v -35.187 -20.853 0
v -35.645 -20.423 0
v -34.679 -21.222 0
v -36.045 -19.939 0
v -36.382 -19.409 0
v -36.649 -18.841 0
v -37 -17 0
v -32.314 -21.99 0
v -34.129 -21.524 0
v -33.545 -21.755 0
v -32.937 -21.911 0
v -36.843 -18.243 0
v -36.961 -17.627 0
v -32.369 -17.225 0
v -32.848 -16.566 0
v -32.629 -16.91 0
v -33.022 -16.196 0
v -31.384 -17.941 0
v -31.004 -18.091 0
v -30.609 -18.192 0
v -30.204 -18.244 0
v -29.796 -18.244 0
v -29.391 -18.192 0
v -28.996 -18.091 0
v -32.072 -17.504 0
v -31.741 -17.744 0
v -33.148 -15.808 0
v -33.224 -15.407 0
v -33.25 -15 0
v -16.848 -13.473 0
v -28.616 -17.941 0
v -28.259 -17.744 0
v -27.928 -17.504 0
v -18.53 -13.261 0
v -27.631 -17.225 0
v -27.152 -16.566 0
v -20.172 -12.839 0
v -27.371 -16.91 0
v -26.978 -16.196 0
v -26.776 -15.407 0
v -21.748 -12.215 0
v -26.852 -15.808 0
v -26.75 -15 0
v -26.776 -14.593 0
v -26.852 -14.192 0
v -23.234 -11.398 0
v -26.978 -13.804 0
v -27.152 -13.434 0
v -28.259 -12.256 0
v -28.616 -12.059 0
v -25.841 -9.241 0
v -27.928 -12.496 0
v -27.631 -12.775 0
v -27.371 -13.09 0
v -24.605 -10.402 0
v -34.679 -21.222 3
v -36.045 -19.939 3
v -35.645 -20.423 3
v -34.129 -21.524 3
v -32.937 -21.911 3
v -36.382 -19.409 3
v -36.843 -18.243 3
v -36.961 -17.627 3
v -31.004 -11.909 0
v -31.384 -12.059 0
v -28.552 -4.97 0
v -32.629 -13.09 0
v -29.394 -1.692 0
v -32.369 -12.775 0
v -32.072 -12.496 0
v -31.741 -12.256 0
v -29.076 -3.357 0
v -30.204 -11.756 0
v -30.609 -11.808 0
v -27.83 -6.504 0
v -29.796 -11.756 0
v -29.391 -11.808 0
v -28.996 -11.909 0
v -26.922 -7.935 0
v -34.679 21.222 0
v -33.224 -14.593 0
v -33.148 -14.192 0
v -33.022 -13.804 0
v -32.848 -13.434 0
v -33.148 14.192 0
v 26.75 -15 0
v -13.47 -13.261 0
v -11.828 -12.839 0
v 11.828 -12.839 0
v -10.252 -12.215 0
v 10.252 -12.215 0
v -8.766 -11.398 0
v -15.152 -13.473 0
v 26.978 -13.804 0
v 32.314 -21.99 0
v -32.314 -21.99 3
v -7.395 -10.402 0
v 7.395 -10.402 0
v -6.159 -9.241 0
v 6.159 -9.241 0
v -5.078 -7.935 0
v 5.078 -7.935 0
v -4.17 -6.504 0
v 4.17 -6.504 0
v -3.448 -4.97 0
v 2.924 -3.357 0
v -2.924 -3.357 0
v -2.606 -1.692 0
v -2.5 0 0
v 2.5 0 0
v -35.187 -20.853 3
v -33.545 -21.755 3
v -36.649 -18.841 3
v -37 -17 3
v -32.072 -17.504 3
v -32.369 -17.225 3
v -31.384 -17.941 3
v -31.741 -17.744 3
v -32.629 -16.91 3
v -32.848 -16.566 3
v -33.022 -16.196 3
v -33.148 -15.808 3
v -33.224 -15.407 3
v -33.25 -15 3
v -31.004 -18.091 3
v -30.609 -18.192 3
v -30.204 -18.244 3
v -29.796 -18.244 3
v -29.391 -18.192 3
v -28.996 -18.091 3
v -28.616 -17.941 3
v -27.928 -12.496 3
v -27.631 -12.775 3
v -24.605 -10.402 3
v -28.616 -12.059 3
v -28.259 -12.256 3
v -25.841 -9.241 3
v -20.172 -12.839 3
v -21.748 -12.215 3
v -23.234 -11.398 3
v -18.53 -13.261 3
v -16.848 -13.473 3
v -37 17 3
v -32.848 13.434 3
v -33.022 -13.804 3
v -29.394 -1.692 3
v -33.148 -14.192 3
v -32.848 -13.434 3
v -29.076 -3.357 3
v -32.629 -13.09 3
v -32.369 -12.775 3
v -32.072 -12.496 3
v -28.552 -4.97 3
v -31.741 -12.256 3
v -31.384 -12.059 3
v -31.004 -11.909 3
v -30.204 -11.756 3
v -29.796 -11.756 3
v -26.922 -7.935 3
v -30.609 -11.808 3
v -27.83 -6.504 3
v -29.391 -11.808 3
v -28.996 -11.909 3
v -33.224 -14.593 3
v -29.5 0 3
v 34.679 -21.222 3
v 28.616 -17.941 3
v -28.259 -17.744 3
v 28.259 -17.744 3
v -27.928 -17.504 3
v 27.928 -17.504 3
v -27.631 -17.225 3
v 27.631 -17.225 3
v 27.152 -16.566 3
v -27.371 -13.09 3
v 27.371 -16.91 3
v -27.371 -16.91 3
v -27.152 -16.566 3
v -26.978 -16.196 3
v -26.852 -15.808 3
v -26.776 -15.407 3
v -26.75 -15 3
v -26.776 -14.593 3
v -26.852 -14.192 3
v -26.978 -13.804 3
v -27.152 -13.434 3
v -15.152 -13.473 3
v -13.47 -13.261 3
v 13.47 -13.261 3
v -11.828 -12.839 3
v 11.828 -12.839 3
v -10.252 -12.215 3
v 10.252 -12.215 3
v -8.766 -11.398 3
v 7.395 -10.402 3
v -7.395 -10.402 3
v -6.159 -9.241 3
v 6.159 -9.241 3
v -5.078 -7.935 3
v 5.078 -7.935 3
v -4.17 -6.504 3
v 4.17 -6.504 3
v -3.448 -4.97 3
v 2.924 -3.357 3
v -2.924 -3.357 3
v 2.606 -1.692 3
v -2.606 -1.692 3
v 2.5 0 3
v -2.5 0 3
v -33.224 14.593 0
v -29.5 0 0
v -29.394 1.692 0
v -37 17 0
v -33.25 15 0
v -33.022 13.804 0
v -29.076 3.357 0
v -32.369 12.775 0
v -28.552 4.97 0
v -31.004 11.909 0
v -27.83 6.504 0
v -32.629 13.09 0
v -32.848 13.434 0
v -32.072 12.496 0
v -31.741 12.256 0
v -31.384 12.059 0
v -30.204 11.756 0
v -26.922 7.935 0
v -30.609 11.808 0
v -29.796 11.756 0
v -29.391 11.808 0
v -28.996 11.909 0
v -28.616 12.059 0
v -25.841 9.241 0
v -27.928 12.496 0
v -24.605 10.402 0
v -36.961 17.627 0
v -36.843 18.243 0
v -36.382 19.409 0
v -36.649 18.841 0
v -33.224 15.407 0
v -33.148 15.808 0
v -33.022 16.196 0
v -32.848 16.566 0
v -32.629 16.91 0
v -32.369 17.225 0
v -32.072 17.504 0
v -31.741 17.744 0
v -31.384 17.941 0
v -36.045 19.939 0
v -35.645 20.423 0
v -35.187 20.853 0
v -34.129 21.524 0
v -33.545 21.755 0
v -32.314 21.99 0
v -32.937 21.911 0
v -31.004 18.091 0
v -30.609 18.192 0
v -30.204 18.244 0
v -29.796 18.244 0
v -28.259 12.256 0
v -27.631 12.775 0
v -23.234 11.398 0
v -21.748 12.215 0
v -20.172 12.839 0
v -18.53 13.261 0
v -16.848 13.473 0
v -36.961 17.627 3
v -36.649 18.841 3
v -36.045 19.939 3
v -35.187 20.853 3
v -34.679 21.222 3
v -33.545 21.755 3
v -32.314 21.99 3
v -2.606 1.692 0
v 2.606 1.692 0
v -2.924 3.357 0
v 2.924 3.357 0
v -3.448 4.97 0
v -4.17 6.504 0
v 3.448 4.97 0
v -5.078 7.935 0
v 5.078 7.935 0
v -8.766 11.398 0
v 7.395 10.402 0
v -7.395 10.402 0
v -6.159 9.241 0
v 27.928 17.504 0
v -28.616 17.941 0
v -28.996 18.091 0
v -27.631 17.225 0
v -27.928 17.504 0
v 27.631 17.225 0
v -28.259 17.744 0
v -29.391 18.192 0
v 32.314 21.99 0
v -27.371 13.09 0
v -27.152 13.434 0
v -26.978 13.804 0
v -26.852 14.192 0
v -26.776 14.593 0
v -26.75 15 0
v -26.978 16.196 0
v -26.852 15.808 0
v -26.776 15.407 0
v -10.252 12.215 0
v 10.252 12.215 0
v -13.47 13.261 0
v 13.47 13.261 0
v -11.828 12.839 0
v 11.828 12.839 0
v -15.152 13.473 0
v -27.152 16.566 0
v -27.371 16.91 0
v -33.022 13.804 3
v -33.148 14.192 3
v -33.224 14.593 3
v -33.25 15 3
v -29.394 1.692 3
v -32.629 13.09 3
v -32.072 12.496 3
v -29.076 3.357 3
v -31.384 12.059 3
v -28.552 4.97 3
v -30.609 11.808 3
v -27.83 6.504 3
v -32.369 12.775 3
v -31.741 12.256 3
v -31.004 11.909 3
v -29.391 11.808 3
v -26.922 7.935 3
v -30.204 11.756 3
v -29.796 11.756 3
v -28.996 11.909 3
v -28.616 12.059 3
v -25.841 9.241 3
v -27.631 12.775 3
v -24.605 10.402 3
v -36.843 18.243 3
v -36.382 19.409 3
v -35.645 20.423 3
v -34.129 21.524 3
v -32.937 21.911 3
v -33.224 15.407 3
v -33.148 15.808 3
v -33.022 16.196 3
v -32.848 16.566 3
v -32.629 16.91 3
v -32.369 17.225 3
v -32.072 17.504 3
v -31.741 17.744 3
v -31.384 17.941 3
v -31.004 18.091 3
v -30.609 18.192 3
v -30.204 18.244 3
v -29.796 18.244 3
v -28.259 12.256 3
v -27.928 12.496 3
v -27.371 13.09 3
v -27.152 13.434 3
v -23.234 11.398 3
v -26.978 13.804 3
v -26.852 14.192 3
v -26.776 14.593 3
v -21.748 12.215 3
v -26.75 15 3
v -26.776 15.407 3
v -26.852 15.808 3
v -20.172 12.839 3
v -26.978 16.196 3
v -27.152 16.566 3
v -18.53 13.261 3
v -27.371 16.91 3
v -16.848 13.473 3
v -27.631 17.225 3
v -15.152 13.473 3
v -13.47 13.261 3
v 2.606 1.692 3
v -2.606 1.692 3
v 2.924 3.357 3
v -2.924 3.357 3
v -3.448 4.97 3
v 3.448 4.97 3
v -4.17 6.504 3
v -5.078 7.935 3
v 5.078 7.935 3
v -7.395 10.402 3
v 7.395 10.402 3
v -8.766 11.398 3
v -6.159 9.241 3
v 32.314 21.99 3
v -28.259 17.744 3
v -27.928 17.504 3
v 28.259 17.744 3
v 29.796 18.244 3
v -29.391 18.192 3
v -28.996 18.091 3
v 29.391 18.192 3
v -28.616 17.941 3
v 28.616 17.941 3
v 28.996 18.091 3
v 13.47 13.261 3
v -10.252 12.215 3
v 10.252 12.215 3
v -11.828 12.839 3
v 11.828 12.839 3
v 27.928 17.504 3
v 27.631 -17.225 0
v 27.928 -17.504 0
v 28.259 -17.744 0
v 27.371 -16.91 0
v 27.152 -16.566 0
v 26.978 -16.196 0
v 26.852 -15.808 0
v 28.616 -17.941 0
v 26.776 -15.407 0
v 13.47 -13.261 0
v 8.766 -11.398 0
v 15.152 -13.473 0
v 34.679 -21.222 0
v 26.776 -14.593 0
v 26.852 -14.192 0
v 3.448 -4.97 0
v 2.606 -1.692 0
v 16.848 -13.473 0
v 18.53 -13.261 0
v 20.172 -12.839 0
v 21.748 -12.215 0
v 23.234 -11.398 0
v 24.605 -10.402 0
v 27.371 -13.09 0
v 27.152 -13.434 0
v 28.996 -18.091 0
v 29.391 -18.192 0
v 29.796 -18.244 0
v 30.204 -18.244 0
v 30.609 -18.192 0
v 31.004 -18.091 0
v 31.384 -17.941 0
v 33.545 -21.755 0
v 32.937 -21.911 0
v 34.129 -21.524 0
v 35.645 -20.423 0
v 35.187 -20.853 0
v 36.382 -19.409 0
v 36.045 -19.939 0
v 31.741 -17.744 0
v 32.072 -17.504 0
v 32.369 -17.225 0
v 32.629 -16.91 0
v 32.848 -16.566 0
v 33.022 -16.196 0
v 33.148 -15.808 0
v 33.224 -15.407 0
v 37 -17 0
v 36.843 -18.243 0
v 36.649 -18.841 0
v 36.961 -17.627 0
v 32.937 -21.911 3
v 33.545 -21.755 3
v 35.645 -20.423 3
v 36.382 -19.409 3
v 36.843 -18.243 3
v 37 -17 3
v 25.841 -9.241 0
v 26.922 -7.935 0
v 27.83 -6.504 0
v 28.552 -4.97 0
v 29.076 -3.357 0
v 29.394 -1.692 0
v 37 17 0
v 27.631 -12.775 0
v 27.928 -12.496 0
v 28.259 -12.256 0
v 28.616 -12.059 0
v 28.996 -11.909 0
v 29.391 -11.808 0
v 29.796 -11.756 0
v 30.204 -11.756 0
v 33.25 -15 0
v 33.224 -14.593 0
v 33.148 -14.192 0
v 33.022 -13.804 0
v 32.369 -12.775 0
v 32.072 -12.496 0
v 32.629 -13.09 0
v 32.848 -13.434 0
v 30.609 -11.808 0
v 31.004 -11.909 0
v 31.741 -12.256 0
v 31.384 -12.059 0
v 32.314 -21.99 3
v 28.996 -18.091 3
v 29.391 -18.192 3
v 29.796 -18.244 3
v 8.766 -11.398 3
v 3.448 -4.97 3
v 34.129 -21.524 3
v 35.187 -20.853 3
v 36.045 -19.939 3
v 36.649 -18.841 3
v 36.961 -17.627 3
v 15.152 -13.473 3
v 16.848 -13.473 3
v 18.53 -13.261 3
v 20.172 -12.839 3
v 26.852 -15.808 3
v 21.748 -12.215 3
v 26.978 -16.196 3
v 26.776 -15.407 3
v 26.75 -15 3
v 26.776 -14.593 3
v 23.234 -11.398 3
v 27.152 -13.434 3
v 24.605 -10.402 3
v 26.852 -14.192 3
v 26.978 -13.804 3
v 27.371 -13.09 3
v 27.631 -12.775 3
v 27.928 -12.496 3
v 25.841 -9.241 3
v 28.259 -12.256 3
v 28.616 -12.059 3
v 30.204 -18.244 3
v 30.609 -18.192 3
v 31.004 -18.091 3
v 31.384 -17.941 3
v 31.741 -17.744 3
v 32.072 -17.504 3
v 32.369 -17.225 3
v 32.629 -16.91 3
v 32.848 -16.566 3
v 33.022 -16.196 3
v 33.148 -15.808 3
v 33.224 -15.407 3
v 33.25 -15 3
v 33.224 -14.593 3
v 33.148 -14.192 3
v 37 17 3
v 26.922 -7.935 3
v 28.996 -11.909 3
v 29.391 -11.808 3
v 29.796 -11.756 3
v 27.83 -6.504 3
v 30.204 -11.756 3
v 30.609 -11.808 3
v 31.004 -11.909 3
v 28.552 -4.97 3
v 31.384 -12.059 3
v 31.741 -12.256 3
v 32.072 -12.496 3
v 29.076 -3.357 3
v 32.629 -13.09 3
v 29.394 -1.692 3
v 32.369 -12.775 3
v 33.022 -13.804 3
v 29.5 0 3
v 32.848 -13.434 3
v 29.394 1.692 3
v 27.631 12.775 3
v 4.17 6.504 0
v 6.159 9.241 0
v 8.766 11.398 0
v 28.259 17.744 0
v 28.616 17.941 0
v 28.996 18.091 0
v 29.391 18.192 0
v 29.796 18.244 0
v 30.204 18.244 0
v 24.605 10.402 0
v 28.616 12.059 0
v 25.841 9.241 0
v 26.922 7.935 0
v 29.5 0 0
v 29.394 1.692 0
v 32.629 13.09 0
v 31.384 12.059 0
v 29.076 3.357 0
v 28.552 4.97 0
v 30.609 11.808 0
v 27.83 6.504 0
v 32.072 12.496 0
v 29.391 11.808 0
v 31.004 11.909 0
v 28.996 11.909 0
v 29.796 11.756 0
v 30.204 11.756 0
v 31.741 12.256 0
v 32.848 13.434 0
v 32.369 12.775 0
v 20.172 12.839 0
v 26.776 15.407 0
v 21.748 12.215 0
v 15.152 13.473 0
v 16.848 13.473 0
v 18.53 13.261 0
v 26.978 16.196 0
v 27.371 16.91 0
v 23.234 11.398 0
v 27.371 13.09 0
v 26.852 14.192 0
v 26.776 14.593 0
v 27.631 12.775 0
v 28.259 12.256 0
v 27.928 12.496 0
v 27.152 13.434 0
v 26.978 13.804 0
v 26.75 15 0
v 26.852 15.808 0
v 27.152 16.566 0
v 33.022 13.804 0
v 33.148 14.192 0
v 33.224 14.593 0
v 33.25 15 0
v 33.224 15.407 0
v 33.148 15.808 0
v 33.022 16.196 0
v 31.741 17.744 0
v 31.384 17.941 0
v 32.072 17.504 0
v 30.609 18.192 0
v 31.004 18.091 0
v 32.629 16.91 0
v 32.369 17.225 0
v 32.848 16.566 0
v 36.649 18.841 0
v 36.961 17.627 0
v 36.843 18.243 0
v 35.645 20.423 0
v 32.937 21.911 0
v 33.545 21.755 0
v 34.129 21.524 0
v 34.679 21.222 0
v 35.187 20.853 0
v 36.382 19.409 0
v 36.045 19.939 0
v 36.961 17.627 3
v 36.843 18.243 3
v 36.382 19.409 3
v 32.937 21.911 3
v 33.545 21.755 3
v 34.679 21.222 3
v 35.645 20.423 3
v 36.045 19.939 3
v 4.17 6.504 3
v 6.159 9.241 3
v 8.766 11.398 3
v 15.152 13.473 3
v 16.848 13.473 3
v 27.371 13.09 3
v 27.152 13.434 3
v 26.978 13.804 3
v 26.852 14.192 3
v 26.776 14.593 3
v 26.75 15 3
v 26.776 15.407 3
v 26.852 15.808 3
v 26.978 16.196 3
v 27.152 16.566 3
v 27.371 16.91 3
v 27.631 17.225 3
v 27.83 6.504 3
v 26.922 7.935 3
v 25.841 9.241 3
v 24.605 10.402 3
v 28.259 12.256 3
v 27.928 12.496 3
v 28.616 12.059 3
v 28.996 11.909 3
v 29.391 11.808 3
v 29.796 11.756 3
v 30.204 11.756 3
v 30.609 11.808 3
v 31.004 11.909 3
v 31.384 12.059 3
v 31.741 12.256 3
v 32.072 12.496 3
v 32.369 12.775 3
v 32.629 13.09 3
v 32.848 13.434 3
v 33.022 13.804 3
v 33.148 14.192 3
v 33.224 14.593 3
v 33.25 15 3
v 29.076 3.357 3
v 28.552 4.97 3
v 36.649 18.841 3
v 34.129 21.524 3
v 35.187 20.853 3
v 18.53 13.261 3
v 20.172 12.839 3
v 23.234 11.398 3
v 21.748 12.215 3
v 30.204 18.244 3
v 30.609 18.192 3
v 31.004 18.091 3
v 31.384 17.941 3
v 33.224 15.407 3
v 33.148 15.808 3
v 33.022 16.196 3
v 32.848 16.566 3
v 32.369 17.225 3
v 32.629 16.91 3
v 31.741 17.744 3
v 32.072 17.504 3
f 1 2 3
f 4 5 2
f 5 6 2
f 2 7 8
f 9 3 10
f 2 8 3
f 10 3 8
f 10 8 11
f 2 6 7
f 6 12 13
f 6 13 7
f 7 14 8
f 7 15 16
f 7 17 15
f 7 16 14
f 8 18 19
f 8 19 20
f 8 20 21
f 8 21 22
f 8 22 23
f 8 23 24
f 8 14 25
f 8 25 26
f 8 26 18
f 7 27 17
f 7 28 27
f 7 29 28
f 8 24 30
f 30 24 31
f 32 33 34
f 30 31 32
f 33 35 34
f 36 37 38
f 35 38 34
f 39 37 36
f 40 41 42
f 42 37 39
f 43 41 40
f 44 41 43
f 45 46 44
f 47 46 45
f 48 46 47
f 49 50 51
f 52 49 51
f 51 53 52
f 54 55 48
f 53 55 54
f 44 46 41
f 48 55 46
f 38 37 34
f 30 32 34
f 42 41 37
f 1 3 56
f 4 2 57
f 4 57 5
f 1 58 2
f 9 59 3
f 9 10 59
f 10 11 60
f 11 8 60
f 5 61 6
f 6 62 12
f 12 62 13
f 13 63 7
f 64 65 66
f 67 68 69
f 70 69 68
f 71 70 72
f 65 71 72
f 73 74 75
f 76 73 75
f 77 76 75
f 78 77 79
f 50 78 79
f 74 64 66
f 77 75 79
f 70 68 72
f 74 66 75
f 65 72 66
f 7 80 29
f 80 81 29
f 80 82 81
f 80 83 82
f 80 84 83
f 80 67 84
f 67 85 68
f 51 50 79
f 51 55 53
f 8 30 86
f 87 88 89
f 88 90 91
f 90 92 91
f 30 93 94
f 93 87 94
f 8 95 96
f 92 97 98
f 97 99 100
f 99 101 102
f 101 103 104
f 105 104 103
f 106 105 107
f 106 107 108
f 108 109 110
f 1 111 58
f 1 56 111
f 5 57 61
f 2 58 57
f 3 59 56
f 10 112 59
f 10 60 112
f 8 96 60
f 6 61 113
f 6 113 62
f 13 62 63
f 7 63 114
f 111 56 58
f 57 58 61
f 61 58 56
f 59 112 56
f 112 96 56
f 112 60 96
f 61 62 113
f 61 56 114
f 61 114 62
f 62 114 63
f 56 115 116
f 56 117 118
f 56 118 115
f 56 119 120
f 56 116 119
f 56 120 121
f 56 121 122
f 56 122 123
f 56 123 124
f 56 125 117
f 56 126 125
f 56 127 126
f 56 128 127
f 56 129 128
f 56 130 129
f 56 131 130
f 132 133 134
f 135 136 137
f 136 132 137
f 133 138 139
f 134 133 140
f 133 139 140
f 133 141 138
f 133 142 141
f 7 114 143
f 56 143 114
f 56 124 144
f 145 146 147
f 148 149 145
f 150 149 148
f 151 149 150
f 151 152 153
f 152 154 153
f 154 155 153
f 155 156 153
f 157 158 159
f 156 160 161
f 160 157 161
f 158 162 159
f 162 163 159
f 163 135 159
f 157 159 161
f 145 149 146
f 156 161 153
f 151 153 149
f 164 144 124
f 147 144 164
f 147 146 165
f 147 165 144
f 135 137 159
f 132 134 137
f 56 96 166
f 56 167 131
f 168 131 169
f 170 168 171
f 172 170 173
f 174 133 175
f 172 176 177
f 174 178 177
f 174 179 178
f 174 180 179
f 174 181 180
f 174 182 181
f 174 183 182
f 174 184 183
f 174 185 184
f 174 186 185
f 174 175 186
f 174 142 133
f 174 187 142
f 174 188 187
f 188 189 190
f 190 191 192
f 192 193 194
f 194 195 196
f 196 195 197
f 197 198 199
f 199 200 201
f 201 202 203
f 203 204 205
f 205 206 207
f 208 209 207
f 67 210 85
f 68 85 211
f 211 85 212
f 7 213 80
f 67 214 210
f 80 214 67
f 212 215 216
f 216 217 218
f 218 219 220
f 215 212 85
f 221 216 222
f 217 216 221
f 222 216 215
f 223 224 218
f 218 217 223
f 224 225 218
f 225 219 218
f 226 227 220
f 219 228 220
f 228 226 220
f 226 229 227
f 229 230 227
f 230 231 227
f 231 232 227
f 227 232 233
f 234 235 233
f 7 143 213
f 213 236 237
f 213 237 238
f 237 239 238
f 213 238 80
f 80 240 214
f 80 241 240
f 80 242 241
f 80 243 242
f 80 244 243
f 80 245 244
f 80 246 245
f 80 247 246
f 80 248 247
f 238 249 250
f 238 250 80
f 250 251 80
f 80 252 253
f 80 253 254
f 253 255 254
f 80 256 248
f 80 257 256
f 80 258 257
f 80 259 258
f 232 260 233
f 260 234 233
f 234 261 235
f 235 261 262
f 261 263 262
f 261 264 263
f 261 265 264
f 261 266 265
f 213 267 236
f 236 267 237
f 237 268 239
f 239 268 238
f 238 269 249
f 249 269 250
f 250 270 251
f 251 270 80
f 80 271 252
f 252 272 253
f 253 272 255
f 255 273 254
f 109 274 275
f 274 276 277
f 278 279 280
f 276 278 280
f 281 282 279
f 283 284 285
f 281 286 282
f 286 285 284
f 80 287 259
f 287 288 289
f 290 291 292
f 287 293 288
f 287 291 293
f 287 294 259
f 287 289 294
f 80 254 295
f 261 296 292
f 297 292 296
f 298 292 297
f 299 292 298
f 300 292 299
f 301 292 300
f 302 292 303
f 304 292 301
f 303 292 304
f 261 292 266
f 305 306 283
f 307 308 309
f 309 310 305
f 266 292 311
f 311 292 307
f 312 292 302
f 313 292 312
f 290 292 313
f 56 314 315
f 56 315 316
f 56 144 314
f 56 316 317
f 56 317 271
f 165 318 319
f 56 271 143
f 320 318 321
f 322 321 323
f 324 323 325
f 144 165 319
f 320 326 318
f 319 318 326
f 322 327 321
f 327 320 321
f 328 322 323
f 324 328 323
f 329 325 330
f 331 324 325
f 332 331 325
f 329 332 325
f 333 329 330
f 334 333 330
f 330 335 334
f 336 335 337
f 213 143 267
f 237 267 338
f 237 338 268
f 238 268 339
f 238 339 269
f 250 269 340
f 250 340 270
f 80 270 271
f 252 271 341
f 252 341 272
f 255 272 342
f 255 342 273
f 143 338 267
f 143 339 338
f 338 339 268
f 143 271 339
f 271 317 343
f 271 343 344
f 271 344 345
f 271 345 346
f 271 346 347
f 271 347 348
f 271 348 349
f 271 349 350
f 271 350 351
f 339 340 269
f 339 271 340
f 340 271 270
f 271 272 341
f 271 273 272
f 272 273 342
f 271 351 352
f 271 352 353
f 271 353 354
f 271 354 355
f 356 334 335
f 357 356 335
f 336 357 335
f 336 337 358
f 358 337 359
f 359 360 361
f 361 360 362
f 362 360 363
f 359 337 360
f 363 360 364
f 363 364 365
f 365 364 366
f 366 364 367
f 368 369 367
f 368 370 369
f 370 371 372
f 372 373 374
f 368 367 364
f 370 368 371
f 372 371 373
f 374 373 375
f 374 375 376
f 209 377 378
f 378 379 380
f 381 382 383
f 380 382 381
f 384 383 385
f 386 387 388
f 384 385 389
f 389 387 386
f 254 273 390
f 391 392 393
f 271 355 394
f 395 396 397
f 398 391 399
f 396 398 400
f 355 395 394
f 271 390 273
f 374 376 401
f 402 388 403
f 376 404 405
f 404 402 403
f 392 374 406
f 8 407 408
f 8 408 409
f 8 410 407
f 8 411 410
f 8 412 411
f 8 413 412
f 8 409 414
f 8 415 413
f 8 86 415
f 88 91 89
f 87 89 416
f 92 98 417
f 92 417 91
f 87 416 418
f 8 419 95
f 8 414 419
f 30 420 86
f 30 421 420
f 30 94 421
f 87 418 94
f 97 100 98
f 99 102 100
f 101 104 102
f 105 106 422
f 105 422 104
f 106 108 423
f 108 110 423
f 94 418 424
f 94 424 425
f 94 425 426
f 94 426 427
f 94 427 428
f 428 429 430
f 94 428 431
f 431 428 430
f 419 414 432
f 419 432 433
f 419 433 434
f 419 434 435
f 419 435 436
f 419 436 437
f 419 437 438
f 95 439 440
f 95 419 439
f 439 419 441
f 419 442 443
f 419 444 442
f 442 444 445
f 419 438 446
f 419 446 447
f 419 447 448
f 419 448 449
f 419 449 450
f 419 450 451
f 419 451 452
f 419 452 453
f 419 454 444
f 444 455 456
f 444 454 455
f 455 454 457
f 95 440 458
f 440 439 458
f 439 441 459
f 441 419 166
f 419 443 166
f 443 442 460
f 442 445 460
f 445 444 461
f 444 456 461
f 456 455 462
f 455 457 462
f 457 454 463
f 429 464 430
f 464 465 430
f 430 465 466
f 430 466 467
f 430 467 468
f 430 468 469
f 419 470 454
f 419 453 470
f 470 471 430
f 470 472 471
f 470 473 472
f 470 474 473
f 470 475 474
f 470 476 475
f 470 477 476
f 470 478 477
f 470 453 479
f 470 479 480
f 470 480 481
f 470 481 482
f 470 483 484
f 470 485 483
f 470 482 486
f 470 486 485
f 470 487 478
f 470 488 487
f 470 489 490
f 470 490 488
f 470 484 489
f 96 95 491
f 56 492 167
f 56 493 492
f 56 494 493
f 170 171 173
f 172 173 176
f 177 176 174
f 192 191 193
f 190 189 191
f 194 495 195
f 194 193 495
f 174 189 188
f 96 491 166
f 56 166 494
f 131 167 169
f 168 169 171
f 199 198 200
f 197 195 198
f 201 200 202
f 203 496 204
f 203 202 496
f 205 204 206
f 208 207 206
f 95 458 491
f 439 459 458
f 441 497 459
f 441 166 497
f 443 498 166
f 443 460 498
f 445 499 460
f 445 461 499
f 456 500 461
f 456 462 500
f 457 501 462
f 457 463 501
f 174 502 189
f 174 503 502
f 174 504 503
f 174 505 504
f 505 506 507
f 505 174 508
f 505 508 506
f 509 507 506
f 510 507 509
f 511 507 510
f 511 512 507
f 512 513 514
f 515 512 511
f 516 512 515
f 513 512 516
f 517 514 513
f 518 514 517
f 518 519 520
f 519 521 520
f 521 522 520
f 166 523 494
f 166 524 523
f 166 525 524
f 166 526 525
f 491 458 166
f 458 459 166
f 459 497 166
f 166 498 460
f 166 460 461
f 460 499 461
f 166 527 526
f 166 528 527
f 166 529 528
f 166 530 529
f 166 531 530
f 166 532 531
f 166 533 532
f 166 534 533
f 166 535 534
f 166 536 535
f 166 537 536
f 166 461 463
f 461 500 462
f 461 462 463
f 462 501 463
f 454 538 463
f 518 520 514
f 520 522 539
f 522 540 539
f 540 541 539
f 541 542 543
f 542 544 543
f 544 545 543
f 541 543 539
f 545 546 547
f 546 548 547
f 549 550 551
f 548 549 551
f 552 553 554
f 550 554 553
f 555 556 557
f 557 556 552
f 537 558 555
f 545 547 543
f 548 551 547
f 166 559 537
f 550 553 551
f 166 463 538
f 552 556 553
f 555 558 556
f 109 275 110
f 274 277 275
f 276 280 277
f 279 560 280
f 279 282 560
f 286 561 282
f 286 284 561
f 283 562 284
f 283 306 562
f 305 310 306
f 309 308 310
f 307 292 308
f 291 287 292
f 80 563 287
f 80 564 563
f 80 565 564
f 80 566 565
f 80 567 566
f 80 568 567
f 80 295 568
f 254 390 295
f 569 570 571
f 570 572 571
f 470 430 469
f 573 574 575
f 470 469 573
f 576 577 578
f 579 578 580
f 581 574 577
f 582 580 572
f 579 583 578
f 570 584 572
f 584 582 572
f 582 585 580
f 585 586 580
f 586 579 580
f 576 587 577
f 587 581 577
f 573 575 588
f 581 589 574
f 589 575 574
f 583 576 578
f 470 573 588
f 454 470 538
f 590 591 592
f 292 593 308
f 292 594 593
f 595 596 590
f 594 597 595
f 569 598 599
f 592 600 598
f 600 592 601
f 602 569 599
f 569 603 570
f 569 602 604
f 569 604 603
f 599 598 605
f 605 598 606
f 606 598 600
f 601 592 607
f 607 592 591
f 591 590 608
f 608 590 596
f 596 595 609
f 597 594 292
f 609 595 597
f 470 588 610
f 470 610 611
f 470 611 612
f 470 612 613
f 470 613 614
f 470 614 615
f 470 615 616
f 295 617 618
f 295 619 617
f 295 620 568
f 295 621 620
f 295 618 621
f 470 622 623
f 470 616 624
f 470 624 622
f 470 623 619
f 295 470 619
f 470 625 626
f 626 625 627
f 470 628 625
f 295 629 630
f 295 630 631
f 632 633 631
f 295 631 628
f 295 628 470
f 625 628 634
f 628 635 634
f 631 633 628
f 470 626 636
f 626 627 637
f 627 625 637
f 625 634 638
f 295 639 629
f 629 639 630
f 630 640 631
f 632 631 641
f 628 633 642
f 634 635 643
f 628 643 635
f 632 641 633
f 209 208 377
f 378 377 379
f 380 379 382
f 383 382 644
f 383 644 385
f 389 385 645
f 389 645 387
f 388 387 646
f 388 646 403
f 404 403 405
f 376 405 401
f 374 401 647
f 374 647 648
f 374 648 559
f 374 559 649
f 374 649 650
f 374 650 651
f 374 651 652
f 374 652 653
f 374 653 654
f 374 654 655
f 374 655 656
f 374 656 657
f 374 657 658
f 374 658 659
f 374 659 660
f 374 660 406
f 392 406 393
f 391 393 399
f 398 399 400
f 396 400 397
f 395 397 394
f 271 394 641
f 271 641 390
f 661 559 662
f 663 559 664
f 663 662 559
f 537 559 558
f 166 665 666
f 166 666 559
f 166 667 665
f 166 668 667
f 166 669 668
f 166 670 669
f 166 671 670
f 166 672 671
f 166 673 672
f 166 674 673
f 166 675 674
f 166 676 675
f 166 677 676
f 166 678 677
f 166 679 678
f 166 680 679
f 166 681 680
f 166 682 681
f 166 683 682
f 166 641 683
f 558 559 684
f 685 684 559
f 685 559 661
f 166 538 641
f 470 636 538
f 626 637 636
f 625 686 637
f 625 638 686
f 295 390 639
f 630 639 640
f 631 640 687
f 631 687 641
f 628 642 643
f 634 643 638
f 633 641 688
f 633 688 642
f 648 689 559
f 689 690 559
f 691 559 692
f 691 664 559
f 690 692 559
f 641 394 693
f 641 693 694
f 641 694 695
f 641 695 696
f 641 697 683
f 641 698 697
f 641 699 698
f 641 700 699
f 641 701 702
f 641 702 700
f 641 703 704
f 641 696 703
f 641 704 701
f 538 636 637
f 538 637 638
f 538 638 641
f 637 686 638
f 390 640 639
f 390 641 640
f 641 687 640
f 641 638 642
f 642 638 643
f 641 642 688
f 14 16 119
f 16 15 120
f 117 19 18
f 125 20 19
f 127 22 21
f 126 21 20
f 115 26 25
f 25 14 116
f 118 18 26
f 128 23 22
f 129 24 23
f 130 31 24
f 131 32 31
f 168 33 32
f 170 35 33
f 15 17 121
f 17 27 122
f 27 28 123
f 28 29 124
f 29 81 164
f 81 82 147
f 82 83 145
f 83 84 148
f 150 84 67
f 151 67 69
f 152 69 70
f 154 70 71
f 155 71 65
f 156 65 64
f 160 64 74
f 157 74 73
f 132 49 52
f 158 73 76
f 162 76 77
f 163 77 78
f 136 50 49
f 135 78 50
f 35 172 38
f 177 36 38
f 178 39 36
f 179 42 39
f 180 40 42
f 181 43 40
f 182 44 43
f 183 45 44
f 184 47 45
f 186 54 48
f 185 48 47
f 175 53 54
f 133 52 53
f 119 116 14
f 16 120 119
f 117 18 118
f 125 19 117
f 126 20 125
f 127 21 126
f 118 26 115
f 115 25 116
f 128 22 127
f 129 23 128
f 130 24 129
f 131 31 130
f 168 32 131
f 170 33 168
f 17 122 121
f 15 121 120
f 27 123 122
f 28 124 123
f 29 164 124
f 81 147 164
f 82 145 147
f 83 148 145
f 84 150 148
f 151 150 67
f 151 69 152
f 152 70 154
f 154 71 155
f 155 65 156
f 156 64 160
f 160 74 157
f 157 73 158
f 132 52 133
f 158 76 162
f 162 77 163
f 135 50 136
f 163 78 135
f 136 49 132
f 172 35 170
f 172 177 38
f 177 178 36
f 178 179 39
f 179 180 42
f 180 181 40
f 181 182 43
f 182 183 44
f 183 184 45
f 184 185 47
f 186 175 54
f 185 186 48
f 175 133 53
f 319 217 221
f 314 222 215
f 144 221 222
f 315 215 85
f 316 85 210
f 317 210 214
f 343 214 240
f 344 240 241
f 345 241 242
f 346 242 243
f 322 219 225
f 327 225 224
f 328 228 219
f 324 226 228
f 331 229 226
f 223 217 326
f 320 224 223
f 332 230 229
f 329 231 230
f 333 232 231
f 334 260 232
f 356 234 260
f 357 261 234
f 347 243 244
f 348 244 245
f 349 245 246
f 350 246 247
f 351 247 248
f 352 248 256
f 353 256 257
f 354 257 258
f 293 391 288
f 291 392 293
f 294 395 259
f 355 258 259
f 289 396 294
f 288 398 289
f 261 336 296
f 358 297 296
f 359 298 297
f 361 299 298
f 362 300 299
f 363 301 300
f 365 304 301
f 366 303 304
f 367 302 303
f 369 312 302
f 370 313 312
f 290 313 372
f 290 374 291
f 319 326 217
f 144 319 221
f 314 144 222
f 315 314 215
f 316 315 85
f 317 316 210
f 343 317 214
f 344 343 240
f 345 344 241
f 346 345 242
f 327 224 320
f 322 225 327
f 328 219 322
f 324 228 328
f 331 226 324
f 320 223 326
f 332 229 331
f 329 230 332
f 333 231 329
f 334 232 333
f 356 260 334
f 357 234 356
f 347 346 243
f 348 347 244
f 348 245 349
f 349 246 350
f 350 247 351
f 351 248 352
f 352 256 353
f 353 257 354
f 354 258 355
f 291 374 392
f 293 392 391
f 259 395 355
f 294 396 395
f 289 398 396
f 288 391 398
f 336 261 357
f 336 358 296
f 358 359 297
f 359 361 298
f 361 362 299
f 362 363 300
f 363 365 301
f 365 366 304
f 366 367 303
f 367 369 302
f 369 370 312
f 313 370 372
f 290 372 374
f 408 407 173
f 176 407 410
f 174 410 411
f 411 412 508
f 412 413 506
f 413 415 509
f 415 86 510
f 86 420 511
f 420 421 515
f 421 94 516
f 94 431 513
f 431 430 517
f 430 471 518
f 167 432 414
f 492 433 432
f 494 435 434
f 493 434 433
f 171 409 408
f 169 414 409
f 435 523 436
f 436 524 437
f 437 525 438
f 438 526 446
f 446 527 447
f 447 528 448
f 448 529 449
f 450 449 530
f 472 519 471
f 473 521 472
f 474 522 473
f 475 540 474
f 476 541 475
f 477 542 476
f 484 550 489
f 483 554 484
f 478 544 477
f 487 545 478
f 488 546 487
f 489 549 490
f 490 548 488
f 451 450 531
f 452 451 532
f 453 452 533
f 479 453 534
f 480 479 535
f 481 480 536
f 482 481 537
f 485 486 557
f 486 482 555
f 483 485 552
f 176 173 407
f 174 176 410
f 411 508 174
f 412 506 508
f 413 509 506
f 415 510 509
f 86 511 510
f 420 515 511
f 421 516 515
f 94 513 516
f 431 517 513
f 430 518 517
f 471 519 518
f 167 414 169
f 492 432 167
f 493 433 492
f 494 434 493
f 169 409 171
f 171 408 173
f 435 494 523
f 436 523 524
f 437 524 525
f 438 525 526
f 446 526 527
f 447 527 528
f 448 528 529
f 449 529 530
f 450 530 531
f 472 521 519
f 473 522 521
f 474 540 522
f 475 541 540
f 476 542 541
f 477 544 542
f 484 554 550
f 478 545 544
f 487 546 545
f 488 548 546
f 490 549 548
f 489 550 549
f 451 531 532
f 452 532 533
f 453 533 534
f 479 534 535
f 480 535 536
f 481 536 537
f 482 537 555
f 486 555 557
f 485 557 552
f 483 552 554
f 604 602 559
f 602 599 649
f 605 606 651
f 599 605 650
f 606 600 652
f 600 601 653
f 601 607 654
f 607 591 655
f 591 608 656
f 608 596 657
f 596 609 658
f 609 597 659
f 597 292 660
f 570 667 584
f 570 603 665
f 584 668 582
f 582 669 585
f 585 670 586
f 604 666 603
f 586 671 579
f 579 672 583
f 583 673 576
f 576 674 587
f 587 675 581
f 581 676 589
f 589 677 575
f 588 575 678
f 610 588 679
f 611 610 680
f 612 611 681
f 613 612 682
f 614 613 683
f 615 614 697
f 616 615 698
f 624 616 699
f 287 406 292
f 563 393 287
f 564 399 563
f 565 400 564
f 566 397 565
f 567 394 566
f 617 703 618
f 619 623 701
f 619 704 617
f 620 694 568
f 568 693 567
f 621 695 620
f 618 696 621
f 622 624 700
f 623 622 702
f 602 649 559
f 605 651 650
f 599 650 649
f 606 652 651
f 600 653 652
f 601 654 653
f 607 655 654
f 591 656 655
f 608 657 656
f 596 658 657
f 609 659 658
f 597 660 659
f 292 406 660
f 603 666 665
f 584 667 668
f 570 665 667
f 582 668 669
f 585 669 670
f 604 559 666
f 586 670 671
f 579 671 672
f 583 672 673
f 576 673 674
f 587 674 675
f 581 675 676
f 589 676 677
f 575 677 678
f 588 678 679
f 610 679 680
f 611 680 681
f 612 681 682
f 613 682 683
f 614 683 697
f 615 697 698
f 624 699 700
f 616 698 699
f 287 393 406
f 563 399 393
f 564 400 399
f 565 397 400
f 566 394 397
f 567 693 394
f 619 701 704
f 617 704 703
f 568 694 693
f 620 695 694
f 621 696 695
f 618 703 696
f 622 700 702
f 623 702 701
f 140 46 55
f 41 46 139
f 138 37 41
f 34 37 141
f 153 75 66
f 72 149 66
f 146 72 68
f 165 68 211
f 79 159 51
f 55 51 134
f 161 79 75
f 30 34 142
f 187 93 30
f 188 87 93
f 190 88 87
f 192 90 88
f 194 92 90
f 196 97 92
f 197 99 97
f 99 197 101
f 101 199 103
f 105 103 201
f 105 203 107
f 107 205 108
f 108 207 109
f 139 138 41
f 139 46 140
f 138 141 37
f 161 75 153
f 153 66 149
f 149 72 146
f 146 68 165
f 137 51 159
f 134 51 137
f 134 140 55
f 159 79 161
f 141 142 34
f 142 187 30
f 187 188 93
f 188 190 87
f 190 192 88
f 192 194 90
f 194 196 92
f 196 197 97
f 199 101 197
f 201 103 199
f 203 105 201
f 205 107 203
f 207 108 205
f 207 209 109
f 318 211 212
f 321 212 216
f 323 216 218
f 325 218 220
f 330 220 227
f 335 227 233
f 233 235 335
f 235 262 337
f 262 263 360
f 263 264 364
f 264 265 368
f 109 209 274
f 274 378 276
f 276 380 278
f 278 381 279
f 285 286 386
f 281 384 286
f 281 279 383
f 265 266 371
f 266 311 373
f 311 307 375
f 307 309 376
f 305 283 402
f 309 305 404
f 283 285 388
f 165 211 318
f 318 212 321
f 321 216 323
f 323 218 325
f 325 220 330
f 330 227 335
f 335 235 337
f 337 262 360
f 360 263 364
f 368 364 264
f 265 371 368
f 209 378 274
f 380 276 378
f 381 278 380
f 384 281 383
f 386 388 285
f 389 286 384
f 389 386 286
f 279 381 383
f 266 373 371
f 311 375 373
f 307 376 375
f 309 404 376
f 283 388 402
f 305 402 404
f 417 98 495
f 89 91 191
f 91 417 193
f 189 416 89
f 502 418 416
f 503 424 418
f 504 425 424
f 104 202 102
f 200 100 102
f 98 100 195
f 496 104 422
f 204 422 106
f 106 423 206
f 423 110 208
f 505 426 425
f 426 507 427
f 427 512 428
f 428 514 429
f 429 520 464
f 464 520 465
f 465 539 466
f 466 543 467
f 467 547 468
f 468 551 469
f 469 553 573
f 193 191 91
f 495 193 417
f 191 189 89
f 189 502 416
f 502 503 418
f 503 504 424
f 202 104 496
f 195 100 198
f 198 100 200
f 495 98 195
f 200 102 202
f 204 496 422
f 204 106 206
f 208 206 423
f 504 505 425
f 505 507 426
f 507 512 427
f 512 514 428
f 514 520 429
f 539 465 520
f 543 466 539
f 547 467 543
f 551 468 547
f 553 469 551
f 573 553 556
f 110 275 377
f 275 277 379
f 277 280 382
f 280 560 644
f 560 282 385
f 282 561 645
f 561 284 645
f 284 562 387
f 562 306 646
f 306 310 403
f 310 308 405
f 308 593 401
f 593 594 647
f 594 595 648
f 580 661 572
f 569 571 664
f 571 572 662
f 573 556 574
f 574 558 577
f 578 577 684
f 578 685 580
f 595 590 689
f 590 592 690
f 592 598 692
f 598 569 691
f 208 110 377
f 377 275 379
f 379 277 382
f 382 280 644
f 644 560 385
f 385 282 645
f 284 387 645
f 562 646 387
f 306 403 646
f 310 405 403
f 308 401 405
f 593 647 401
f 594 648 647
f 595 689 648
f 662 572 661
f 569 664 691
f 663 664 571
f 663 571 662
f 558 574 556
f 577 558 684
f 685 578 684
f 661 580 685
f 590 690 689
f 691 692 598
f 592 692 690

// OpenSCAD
$fn = 50;

difference() {
	union() {
		hull() {
			translate(v = [-32.0, 17.0, 0]) {
				cylinder(h = 3, r = 5);
			}
			translate(v = [32.0, 17.0, 0]) {
				cylinder(h = 3, r = 5);
			}
			translate(v = [-32.0, -17.0, 0]) {
				cylinder(h = 3, r = 5);
			}
			translate(v = [32.0, -17.0, 0]) {
				cylinder(h = 3, r = 5);
			}
		}
	}
	union() {
		translate(v = [-30.0, -15.0, -100.0]) {
			cylinder(h = 200, r = 3.25);
		}
		translate(v = [-30.0, 15.0, -100.0]) {
			cylinder(h = 200, r = 3.25);
		}
		translate(v = [30.0, -15.0, -100.0]) {
			cylinder(h = 200, r = 3.25);
		}
		translate(v = [30.0, 15.0, -100.0]) {
			cylinder(h = 200, r = 3.25);
		}
		translate(v = [-30.0, -15.0, -100.0]) {
			cylinder(h = 200, r = 1.8);
		}
		translate(v = [-30.0, 15.0, -100.0]) {
			cylinder(h = 200, r = 1.8);
		}
		translate(v = [30.0, -15.0, -100.0]) {
			cylinder(h = 200, r = 1.8);
		}
		translate(v = [30.0, 15.0, -100.0]) {
			cylinder(h = 200, r = 1.8);
		}
		translate(v = [-16.0, 0, 0.0]) {
			cylinder(h = 3, r = 13.5);
		}
		translate(v = [16.0, 0, 0.0]) {
			cylinder(h = 3, r = 13.5);
		}
	}
}
